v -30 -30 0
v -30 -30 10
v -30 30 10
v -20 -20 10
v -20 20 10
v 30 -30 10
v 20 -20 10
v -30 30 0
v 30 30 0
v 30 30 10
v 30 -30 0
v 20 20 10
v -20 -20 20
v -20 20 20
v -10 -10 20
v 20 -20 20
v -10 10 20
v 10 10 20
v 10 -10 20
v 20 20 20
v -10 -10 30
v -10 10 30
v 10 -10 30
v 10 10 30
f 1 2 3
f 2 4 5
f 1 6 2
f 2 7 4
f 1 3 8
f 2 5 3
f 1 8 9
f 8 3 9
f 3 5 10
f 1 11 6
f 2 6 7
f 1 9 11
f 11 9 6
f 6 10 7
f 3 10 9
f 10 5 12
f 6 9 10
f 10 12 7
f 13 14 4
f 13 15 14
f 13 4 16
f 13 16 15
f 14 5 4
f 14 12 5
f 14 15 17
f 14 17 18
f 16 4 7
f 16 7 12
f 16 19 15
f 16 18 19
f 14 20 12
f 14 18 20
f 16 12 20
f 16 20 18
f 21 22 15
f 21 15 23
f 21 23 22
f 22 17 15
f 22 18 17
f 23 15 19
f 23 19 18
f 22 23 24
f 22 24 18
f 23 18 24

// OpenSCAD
// 3段の階段状ピラミッド

// 1段目：60mm x 60mm x 10mm
translate([-30, -30, 0])
cube([60, 60, 10]);

// 2段目：40mm x 40mm x 10mm
translate([-20, -20, 10])
cube([40, 40, 10]);

// 3段目：20mm x 20mm x 10mm
translate([-10, -10, 20])
cube([20, 20, 10]);
